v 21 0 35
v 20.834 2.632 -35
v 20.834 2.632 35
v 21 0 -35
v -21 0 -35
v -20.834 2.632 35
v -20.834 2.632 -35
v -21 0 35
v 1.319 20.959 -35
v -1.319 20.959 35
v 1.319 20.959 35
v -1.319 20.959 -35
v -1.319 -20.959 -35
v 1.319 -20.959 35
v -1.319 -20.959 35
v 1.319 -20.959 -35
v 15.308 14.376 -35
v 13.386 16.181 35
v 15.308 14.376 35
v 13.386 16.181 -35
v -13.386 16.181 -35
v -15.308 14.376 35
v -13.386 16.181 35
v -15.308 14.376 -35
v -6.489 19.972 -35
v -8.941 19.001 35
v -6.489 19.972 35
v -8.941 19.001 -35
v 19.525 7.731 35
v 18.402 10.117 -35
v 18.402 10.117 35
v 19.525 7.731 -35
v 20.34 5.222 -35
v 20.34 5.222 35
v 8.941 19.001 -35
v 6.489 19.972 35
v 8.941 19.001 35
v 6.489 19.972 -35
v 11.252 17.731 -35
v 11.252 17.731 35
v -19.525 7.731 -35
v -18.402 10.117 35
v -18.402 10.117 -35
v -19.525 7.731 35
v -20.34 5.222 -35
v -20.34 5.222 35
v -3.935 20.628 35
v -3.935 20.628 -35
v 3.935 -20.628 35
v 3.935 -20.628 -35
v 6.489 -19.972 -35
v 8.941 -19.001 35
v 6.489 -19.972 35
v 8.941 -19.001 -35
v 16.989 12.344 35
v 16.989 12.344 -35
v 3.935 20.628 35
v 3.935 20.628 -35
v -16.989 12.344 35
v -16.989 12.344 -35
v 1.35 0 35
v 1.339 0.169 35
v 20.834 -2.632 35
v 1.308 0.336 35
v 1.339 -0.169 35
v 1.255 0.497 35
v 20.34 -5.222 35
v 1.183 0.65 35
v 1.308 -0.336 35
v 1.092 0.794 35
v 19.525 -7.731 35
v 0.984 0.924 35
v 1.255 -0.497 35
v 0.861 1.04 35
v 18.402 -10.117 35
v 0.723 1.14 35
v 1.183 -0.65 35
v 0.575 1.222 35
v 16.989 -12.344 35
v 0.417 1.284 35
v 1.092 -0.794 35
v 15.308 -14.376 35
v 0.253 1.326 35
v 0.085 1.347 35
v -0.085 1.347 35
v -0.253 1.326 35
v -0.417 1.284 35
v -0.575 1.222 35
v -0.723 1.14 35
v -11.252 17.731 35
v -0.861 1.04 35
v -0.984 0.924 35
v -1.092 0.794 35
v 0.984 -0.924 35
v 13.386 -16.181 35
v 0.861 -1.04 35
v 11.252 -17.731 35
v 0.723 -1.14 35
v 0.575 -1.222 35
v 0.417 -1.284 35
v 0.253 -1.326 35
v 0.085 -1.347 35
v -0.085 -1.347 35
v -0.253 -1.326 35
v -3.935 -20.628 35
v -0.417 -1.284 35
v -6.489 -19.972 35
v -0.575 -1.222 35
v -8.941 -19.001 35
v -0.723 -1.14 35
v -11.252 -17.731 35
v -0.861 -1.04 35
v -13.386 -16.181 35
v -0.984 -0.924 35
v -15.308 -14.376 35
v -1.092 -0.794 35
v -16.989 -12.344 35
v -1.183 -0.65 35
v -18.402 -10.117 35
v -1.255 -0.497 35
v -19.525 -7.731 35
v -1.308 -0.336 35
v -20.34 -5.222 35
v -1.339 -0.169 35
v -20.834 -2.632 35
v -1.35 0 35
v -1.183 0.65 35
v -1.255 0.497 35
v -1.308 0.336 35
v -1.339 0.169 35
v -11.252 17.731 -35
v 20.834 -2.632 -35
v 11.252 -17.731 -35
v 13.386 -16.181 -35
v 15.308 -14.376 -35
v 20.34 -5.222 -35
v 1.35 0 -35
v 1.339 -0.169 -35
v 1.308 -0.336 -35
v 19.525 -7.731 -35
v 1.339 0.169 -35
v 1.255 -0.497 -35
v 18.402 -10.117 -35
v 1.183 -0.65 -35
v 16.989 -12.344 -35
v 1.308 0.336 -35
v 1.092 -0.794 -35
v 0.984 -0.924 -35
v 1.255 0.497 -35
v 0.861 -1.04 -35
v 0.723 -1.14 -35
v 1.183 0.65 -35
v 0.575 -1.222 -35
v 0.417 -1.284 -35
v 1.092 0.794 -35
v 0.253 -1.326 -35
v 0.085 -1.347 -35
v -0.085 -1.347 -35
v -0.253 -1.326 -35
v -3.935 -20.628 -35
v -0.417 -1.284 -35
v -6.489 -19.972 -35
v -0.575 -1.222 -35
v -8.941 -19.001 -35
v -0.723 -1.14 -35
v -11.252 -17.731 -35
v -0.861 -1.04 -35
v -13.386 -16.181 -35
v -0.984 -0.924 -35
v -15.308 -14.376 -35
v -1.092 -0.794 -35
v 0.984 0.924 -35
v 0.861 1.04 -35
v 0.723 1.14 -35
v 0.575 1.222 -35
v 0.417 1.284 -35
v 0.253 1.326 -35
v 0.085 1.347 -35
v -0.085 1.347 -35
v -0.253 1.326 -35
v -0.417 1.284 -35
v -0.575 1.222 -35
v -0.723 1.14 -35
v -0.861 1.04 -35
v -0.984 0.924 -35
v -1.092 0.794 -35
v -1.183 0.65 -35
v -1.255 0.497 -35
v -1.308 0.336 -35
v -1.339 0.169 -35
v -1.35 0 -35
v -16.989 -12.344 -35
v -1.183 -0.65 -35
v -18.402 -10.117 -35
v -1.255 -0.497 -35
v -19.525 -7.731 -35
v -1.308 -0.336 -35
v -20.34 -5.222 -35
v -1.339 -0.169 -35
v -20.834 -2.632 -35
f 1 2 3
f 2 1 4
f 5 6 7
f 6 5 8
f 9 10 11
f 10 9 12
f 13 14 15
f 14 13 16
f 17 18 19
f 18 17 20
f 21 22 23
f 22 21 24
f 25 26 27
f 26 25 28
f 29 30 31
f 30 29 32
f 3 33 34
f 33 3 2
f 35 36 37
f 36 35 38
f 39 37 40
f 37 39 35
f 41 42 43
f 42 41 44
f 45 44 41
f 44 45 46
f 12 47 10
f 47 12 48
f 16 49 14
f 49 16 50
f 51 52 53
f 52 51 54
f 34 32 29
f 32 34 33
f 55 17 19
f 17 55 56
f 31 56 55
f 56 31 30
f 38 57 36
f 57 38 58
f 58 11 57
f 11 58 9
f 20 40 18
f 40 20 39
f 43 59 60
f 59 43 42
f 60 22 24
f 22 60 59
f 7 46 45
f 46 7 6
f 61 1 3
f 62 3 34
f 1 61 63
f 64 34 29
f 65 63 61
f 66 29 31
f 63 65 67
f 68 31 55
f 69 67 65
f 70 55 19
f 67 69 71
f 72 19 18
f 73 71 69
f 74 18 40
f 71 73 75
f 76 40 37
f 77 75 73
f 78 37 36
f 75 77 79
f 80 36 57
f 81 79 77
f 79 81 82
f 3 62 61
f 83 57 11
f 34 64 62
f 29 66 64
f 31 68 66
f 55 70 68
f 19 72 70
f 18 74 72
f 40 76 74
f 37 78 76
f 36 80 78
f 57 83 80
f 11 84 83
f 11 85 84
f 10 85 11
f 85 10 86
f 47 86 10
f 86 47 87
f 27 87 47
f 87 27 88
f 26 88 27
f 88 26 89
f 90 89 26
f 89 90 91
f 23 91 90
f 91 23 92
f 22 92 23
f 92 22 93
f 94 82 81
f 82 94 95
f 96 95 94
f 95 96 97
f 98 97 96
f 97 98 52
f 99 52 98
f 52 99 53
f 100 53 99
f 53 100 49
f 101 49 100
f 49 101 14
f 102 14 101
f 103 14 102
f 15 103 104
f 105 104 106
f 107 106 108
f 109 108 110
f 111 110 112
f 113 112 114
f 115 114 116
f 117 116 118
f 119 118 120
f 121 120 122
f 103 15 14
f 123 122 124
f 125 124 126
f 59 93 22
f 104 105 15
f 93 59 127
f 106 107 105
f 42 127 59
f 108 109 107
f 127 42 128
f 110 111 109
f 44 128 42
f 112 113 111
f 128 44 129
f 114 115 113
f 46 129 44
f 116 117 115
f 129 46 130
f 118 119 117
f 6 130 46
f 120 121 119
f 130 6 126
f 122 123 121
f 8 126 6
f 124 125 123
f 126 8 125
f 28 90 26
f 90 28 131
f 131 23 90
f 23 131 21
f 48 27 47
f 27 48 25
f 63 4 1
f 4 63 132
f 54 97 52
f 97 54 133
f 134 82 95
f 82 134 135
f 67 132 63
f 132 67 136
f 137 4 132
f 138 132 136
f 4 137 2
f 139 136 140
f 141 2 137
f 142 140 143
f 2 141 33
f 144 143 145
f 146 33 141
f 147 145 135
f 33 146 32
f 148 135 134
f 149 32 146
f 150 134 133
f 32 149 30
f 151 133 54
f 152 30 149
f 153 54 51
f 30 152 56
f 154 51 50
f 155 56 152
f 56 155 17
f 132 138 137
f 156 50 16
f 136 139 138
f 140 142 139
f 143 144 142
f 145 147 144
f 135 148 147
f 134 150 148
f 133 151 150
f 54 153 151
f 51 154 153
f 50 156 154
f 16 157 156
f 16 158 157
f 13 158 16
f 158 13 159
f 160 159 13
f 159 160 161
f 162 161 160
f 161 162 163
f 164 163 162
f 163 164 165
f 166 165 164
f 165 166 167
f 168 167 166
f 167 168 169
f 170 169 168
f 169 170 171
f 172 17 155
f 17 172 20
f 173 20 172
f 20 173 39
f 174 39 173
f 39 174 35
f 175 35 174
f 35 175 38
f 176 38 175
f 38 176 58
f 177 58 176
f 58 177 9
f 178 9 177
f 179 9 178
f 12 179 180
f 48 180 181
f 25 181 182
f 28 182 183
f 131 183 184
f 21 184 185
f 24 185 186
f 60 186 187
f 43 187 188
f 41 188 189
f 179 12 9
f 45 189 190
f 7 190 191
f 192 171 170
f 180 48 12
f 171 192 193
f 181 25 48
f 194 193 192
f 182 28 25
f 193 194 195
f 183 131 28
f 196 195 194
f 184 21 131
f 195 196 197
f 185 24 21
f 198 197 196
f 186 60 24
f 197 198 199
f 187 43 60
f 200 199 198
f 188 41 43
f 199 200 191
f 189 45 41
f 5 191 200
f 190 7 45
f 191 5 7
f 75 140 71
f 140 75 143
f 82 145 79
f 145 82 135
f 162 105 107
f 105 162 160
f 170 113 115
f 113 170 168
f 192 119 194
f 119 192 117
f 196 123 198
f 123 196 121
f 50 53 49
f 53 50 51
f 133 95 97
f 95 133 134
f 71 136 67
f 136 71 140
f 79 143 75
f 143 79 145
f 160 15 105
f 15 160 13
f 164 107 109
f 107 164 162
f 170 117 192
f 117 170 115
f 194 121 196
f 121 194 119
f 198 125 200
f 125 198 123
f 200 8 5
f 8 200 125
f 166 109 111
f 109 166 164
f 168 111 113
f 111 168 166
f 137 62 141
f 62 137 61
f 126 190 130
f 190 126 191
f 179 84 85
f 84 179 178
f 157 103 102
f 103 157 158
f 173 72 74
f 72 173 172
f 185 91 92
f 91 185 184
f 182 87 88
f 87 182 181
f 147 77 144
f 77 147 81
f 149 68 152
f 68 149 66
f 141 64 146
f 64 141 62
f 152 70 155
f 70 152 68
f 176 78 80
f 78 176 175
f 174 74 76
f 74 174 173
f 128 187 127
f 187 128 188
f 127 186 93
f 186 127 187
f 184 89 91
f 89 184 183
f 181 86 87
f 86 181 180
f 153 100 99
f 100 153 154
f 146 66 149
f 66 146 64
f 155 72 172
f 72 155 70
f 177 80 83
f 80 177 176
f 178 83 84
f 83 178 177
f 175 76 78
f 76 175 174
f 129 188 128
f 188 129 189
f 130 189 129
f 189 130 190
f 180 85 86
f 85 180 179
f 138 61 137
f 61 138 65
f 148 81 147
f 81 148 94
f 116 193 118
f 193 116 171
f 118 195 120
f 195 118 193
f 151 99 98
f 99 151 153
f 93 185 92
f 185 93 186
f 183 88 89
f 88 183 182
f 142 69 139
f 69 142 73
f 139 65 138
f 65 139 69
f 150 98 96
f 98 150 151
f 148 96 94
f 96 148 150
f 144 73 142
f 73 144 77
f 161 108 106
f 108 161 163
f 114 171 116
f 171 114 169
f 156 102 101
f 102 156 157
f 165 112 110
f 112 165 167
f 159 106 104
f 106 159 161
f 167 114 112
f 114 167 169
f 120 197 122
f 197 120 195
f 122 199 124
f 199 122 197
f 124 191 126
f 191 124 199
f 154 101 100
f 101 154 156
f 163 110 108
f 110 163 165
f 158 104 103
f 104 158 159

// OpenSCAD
$fn = 50;


difference() {
	union() {
		translate(v = [0, 0, -35.0000000000]) {
			cylinder(h = 70, r = 21.0000000000);
		}
	}
	union() {
		translate(v = [0, 0, -100.0000000000]) {
			cylinder(h = 200, r = 1.3500000000);
		}
	}
}
